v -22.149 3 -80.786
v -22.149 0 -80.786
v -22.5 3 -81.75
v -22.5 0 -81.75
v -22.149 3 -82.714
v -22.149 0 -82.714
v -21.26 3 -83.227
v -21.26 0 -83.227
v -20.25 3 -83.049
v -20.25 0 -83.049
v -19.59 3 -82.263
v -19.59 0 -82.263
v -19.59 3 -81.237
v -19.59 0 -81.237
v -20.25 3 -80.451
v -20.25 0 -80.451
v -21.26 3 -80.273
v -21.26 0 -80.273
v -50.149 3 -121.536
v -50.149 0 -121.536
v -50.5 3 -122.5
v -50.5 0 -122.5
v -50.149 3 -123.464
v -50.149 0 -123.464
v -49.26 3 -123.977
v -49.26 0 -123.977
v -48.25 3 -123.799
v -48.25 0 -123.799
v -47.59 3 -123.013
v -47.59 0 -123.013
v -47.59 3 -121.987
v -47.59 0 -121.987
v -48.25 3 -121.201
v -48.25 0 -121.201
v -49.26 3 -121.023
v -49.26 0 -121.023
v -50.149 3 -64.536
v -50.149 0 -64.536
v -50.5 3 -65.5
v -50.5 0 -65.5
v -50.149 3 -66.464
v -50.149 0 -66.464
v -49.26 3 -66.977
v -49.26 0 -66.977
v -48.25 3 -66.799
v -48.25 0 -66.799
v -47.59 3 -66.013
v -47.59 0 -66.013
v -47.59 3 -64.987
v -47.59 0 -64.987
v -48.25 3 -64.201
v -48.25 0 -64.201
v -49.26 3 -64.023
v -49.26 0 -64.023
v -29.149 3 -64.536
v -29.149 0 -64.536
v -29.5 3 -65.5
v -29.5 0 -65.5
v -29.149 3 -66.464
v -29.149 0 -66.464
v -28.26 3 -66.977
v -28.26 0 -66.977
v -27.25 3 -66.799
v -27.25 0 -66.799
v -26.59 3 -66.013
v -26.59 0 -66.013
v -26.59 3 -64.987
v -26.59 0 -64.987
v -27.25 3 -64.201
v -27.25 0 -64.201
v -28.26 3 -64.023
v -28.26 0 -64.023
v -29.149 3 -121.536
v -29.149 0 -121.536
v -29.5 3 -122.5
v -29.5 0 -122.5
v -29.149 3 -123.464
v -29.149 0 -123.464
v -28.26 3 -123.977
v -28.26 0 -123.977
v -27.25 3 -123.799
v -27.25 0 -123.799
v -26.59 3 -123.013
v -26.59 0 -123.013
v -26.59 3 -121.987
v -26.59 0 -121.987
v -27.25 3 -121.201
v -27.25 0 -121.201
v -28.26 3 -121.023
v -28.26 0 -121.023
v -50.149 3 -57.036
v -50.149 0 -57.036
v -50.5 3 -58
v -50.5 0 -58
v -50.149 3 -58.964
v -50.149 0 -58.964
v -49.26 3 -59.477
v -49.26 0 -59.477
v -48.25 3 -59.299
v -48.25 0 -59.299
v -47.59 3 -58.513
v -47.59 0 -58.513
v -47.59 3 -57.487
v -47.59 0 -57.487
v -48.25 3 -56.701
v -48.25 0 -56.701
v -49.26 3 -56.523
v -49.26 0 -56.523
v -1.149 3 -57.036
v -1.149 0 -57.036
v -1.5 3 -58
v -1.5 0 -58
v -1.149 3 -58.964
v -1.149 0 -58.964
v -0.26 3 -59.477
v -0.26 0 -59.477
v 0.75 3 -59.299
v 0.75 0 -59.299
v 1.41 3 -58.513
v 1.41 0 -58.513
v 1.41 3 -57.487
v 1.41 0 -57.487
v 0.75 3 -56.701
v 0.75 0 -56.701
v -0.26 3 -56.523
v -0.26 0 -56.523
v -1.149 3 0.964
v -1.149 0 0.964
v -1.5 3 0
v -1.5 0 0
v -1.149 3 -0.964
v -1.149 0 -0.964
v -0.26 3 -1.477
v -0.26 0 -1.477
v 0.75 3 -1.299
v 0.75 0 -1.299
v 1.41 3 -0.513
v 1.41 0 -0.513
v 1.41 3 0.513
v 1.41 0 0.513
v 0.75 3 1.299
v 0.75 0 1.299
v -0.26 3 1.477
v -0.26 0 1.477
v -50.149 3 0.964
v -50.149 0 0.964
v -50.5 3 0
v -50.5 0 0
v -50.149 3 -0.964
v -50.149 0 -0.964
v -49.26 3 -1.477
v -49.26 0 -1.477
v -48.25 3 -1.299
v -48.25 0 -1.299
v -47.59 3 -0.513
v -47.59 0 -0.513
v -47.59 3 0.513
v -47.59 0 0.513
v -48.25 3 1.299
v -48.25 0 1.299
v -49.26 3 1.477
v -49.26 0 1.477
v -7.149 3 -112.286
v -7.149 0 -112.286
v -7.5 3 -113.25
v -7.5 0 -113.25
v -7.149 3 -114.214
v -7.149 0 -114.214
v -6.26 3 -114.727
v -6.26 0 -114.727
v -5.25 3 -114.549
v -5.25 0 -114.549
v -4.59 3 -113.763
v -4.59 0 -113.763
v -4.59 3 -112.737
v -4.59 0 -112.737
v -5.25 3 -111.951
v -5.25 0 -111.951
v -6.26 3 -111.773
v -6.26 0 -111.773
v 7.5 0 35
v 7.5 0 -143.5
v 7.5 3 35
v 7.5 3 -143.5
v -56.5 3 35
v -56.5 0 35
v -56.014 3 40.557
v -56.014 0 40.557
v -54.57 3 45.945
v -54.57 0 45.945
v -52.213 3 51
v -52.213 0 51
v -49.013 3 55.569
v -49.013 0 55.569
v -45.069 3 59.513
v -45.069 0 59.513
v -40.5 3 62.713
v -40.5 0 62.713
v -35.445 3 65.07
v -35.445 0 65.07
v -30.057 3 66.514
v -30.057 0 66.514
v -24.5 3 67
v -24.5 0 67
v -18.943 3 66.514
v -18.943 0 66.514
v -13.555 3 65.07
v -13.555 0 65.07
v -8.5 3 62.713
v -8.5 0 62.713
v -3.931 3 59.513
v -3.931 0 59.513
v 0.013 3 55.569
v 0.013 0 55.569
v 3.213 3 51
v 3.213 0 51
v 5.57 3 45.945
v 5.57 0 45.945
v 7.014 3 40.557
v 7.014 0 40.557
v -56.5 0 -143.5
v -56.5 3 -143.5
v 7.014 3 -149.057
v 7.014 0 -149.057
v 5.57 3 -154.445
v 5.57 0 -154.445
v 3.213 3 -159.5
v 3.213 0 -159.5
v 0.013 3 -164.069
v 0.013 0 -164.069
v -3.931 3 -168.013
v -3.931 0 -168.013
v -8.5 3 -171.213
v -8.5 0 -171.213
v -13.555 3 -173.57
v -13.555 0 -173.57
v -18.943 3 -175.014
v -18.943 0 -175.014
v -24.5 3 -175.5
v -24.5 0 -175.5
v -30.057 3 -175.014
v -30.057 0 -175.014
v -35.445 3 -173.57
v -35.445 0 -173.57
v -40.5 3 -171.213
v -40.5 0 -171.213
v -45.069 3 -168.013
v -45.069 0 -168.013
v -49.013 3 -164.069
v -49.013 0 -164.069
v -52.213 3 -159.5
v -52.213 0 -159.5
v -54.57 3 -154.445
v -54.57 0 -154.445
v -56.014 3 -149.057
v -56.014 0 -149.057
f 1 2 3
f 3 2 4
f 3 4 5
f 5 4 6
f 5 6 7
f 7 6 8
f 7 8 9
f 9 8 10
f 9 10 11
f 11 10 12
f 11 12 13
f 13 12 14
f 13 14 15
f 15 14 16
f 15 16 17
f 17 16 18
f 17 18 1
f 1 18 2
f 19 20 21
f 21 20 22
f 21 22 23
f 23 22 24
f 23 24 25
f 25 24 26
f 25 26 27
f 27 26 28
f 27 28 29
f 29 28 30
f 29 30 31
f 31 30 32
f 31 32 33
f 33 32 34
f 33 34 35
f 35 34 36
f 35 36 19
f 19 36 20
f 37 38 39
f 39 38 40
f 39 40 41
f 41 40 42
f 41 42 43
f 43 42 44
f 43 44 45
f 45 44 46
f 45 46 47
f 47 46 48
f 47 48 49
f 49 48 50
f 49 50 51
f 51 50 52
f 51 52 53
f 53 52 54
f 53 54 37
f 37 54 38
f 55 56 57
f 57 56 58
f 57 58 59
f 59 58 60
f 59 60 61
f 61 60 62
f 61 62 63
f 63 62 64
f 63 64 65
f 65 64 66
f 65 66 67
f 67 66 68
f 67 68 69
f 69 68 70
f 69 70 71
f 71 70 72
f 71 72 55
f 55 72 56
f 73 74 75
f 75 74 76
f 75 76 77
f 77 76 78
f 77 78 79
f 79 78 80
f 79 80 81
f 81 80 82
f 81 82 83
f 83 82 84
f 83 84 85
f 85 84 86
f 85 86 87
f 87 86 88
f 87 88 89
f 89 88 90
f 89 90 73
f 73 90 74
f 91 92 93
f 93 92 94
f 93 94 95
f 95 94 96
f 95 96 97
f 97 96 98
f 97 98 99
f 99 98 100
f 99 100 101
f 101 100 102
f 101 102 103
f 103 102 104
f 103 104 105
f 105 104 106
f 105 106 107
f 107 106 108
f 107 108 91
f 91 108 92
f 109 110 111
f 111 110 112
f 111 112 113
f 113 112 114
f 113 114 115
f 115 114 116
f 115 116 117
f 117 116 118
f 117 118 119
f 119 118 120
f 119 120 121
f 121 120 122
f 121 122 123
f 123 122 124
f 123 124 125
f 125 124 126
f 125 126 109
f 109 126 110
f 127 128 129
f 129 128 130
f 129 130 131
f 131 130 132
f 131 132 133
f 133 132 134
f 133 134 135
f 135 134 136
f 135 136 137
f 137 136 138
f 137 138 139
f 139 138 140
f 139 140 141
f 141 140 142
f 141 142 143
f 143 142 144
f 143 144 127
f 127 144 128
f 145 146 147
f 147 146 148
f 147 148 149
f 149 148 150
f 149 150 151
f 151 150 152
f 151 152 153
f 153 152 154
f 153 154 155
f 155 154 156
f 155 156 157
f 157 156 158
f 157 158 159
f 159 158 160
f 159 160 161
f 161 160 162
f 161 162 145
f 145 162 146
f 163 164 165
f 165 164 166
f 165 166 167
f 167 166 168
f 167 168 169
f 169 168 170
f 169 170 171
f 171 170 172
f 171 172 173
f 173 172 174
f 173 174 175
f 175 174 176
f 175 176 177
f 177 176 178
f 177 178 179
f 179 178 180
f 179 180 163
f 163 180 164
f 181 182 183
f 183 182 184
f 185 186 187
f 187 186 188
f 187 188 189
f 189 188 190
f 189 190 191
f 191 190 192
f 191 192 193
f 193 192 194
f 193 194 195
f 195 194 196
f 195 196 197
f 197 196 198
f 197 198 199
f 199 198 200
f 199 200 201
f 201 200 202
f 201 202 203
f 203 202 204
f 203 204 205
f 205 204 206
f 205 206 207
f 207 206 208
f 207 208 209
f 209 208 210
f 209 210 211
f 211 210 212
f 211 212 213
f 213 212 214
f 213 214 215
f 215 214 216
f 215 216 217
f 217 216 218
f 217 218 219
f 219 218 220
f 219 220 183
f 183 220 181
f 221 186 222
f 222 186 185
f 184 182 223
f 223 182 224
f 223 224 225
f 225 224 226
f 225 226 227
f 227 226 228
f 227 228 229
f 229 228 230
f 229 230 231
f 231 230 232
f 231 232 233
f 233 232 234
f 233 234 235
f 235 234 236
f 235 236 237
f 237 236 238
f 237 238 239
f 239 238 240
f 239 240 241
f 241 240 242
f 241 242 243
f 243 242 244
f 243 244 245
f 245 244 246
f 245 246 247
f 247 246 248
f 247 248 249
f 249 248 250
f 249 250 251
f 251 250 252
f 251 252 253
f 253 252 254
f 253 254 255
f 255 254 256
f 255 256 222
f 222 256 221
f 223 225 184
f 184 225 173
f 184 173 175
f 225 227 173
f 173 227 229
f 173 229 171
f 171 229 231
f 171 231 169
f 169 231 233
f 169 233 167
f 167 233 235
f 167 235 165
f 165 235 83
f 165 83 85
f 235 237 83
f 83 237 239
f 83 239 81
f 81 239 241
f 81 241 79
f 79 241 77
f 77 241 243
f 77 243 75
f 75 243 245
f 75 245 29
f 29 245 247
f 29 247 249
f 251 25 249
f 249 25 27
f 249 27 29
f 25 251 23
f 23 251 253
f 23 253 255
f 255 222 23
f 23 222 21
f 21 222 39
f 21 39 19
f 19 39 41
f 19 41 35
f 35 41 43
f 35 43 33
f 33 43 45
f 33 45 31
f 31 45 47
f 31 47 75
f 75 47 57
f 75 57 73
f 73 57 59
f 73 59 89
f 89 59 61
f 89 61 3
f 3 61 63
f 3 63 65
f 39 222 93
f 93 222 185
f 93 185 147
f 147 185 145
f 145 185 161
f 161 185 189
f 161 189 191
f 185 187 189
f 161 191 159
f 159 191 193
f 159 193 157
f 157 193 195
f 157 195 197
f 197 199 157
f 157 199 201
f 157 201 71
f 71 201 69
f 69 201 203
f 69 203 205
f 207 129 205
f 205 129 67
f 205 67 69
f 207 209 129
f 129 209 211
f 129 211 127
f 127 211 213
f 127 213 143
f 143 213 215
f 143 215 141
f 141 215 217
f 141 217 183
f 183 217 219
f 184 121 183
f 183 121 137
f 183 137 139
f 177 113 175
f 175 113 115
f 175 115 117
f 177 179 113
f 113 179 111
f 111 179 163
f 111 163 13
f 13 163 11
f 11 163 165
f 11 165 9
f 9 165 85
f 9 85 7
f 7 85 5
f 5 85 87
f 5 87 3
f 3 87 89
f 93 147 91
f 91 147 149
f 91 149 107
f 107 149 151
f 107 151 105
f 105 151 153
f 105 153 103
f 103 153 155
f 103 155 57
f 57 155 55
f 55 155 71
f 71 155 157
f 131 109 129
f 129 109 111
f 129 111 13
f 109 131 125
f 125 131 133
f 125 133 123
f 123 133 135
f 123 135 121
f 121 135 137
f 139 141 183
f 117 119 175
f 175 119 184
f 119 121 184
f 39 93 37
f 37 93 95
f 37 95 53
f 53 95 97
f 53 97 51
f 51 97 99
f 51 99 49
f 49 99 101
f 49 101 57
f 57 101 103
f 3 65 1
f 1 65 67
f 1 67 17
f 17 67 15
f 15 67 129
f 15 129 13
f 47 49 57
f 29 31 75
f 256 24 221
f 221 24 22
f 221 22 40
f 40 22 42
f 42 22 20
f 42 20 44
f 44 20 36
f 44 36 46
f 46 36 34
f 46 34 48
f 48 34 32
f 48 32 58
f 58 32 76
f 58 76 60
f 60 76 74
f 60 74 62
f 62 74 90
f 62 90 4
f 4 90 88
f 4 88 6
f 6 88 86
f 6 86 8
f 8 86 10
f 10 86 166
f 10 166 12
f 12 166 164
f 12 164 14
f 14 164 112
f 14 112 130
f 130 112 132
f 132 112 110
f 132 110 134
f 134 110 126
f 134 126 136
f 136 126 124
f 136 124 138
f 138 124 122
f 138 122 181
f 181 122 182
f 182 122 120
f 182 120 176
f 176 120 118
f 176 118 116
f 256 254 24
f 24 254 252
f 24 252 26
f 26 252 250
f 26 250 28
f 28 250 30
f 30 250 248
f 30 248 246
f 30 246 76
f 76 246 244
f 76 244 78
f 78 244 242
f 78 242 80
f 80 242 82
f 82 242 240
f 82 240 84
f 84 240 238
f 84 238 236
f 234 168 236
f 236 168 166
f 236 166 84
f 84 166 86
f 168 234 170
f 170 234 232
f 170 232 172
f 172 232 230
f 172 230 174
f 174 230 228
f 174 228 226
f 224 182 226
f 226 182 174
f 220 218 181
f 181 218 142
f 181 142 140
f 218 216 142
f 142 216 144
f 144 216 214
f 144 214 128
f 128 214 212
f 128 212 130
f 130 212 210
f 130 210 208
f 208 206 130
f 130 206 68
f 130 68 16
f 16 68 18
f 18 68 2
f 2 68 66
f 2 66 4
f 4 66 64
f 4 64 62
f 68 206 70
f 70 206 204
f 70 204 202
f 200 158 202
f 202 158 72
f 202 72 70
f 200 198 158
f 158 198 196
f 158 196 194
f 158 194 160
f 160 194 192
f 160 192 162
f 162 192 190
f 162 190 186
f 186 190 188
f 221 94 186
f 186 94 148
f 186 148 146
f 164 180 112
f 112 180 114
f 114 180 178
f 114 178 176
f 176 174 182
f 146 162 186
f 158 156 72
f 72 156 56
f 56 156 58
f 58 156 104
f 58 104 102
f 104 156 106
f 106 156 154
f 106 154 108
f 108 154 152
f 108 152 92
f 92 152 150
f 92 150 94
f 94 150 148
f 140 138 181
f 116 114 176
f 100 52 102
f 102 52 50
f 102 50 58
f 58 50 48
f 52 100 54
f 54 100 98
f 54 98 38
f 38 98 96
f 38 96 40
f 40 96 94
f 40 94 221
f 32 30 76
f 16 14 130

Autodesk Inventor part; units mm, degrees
ref_plane "YZ Plane" through (0, 0, 0) normal (1, 0, 0) x (0, 1, 0)
ref_plane "XZ Plane" through (0, 0, 0) normal (0, 1, 0) x (-1, 0, 0)
ref_plane "XY Plane" through (0, 0, 0) normal (0, 0, 1) x (1, 0, 0)
sketch "Sketch1" plane through (0, 0, 0) normal (0, 1, 0) x (-1, 0, 0)
  line L0 (0, 0) -> (49, 0) construction
  line L1 (49, 0) -> (49, -58) construction
  line L2 (49, -58) -> (0, -58) construction
  line L3 (0, -58) -> (0, 0) construction
  line L4 (53.5, 32) -> (-4.5, 32) construction
  line L5 (-4.5, 32) -> (-4.5, -62) construction
  line L6 (-4.5, -62) -> (53.5, -62) construction
  line L7 (53.5, -62) -> (53.5, 32) construction
  line L8 (53.5, -58) -> (-4.5, -58) construction
  line L9 (24.5, -62) -> (24.5, -133) construction
  line L10 (49, -65.5) -> (28, -65.5) construction
  line L11 (28, -65.5) -> (28, -122.5) construction
  line L12 (28, -122.5) -> (49, -122.5) construction
  line L13 (49, -122.5) -> (49, -65.5) construction
  line L14 (24.5, -94) -> (28, -94) construction
  line L15 (45.5, -122.5) -> (31.5, -122.5) construction
  line L16 (31.5, -122.5) -> (31.5, -140.5) construction
  line L17 (31.5, -140.5) -> (45.5, -140.5) construction
  line L18 (45.5, -140.5) -> (45.5, -122.5) construction
  line L19 (21, -81.75) -> (6, -81.75) construction
  line L20 (6, -81.75) -> (6, -113.25) construction
  line L21 (6, -113.25) -> (21, -113.25) construction
  line L22 (21, -113.25) -> (21, -81.75) construction
  line L23 (24.5, -97.5) -> (21, -97.5) construction
  circle A0 centre (49, -122.5) radius 1.5
  circle A1 centre (49, -65.5) radius 1.5
  circle A2 centre (28, -65.5) radius 1.5
  circle A3 centre (28, -122.5) radius 1.5
  circle A4 centre (49, -58) radius 1.5
  circle A5 centre (0, -58) radius 1.5
  circle A6 centre (0, 0) radius 1.5
  circle A7 centre (49, 0) radius 1.5
  circle A8 centre (21, -81.75) radius 1.5
  circle A9 centre (6, -113.25) radius 1.5
  line L24 (53.5, 32) -> (-4.5, 32) construction
  line L25 (-4.5, 32) -> (-4.5, -140.5) construction
  line L26 (-4.5, -140.5) -> (53.5, -140.5) construction
  line L27 (53.5, -140.5) -> (53.5, 32) construction
  line L28 (56.5, 35) -> (-7.5, 35) construction
  line L29 (-7.5, 35) -> (-7.5, -143.5)
  line L30 (-7.5, -143.5) -> (56.5, -143.5) construction
  line L31 (56.5, -143.5) -> (56.5, 35)
  arc A10 (56.5, 35) -> (-7.5, 35) centre (24.5, 35) ccw
  arc A11 (-7.5, -143.5) -> (56.5, -143.5) centre (24.5, -143.5) ccw
  point P0 (24.5, -58)
  point P1 (38.5, -122.5)
  point P2 (38.5, -140.5)
  point P3 (53.5, -15)
  point P4 (-4.5, -15)
  point P5 (24.5, 32)
  dimension "d0" = 49
  dimension "d1" = 58
  dimension "d2" = 58
  dimension "d3" = 94
  dimension "d4" = 4
  dimension "d7" = 71
  dimension "d8" = 21
  dimension "d9" = 57
  dimension "d10" = 32
  dimension "d11" = 3.5
  dimension "d12" = 14
  dimension "d13" = 18
  dimension "d14" = 15
  dimension "d15" = 31.5
  dimension "d16" = 3.5
  dimension "d17" = 3
  dimension "d18" = 3
  dimension "d19" = 3
  dimension "d20" = 3
  dimension "d21" = 3
  dimension "d22" = 3
  dimension "d23" = 3
  dimension "d24" = 3
  dimension "d25" = 3
  dimension "d26" = 3
  dimension "d27" = 3
extrude "Extrusion1" add sketch "Sketch1" along normal blind 3
properties part number "electronics_layout_v1"
